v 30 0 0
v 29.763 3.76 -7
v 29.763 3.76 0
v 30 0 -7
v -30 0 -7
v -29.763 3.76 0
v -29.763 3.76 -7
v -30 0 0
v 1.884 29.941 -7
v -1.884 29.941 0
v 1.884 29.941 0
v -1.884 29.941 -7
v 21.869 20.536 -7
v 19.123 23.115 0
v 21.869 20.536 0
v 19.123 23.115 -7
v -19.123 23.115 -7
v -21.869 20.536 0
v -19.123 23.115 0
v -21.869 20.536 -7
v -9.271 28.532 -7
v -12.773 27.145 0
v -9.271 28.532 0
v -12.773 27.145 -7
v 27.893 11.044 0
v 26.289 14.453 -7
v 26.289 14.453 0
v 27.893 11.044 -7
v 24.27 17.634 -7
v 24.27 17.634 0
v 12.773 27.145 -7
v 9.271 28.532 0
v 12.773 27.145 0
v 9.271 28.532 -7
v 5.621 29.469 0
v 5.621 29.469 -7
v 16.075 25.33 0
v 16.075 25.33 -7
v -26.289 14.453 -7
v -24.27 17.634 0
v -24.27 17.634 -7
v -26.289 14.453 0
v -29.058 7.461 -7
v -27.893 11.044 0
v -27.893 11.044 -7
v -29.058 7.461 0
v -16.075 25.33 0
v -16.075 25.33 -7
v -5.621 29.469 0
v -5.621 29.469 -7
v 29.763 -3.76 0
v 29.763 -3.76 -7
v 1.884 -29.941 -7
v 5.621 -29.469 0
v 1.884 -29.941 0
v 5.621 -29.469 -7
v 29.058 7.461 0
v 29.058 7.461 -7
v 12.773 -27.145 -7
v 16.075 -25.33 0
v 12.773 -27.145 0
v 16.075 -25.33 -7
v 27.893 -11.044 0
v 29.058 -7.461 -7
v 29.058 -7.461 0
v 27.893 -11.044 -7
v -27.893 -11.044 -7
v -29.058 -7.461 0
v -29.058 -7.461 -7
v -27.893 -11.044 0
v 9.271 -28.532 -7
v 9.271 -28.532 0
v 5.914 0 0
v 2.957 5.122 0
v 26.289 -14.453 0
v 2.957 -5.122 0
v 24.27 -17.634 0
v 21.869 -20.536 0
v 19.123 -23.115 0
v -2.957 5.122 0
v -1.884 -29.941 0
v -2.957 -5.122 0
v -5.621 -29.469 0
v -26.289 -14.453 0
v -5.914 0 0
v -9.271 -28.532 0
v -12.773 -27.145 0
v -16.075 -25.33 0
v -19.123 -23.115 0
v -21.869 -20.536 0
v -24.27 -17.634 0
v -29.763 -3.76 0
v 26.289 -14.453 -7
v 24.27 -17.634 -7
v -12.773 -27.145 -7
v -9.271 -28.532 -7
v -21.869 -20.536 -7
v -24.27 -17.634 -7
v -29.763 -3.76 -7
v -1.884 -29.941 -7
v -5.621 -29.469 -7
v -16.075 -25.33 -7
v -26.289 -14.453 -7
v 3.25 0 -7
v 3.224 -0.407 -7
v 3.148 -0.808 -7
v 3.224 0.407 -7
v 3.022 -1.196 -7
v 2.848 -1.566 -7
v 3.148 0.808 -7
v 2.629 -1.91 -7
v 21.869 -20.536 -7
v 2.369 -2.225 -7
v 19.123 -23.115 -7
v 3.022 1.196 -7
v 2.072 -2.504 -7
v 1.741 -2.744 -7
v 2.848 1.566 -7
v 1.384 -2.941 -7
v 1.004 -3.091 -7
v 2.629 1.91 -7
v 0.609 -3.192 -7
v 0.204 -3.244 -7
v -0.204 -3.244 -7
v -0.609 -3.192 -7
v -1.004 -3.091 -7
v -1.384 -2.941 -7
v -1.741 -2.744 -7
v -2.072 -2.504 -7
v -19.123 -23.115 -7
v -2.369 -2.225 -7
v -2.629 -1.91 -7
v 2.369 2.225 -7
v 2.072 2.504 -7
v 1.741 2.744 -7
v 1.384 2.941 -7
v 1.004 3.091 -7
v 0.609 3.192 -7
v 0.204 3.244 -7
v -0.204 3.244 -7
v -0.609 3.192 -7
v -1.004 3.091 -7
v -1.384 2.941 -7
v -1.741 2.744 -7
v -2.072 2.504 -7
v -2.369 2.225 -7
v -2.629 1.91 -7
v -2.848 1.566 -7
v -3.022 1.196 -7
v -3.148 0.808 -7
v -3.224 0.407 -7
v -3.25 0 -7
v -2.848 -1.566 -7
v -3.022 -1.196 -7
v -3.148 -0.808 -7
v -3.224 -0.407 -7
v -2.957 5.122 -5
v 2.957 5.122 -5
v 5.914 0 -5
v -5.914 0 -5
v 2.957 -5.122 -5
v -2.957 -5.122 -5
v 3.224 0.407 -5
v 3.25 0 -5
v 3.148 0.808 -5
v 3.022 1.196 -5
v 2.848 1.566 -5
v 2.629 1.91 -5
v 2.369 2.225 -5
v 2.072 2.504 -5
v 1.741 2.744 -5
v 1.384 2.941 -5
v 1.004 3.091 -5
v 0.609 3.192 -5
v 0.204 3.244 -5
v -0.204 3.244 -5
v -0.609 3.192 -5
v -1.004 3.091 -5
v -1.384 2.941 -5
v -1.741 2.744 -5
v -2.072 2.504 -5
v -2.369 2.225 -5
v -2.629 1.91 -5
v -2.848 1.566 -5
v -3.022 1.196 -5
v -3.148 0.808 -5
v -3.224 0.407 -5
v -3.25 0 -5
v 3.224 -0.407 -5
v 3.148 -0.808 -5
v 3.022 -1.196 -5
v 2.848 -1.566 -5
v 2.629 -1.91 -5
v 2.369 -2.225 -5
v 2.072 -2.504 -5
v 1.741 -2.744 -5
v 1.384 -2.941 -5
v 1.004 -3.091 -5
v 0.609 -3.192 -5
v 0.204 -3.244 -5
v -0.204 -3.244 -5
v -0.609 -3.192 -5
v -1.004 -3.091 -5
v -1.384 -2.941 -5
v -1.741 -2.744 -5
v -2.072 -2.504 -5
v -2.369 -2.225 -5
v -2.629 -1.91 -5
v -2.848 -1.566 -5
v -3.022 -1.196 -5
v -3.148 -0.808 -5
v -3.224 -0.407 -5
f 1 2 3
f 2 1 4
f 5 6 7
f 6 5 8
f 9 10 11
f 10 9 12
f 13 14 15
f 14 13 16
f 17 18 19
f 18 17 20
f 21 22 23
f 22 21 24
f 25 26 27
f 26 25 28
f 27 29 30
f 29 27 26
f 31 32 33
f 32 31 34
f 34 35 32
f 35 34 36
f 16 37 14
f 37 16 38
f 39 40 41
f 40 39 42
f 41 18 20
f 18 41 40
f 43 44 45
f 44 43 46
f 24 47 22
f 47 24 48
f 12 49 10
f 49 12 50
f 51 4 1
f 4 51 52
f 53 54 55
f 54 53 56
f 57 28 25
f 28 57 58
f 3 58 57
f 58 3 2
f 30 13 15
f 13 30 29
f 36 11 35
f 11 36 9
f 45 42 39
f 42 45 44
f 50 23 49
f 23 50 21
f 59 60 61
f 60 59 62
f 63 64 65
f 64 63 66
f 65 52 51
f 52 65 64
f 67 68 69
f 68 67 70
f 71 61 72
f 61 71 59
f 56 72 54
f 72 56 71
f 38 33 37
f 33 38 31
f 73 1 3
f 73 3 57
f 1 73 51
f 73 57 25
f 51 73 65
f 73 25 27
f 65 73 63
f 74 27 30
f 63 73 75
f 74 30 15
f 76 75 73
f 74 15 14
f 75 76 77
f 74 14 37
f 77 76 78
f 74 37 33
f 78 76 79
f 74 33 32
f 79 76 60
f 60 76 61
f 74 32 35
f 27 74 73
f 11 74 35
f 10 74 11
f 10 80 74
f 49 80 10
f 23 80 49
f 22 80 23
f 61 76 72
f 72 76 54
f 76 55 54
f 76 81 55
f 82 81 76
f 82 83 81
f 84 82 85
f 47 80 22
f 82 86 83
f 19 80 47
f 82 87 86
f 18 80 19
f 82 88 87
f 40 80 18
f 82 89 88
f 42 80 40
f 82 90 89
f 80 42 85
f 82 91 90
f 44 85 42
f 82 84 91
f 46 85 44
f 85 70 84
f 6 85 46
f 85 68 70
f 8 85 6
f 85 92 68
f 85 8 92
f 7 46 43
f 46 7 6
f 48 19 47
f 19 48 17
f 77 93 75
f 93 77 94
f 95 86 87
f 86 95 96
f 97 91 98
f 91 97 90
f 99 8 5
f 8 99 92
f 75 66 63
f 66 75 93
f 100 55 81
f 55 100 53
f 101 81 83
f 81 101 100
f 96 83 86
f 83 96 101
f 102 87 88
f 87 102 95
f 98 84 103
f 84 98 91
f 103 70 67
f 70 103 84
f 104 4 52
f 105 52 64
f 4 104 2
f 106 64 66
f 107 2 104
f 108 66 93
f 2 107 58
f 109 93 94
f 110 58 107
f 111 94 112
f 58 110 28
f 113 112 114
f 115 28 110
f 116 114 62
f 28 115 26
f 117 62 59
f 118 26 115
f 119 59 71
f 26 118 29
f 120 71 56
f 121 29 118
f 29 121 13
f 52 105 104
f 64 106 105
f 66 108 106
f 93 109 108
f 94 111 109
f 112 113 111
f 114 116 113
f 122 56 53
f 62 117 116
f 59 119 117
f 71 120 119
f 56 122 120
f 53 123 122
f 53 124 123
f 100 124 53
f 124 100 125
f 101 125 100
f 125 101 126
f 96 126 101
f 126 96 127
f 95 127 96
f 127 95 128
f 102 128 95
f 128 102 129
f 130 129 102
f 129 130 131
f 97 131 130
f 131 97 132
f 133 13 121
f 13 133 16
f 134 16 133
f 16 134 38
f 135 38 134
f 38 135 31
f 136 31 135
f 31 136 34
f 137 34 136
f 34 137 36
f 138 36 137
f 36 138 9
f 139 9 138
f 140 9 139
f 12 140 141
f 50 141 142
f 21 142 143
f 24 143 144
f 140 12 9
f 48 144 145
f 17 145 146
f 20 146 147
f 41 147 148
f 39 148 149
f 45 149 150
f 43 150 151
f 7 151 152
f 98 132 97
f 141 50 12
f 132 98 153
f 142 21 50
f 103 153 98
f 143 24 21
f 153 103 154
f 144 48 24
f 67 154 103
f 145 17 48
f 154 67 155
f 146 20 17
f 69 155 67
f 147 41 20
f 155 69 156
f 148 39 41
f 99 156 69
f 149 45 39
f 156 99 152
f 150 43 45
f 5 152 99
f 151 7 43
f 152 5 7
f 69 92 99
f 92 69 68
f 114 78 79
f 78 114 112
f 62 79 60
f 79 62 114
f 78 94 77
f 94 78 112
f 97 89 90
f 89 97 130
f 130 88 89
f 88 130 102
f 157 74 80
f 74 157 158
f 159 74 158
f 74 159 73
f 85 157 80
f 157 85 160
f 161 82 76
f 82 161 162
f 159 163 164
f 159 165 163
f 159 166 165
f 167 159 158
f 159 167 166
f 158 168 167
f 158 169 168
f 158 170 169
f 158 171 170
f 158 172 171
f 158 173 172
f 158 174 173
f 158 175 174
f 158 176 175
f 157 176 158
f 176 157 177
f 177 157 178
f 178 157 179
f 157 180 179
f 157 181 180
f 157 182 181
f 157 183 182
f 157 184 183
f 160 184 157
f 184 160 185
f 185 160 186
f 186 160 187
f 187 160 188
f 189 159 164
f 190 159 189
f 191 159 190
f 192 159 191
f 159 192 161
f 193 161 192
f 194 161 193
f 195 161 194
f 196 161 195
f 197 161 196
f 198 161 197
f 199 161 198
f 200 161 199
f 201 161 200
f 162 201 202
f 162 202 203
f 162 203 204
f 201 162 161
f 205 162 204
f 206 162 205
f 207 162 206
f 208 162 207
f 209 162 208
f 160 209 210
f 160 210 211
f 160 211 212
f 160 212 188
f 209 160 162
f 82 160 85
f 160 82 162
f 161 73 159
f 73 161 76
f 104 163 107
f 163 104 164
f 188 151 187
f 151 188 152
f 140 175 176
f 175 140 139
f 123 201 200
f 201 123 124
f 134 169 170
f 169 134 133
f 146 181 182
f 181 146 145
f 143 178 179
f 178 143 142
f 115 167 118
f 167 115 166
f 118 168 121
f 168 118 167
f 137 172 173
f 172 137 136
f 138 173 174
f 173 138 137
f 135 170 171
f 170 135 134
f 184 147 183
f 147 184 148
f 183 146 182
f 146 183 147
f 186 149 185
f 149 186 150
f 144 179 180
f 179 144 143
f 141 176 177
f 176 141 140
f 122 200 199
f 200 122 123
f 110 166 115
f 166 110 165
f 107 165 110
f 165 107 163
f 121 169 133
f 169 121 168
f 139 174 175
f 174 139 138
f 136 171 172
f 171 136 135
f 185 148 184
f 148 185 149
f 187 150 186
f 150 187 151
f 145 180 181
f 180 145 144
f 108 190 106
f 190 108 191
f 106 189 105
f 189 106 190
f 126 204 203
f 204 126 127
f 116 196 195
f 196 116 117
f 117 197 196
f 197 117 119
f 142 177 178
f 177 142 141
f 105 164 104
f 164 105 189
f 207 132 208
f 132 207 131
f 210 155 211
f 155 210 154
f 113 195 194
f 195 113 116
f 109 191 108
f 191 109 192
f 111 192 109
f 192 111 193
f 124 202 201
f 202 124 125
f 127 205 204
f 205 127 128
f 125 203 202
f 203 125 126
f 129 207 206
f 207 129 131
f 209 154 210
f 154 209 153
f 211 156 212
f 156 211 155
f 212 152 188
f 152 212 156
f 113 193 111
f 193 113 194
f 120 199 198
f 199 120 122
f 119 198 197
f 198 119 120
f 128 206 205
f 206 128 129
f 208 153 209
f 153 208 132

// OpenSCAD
$fn = 50;


difference() {
	union() {
		translate(v = [0, 0, -7.0000000000]) {
			cylinder(h = 7.0000000000, r = 30.0000000000);
		}
		translate(v = [0, 0, -5.5000000000]) {
			cylinder(h = 5.5000000000, r = 2.8750000000);
		}
	}
	union() {
		translate(v = [0, 0, 0]) {
			rotate(a = [0, 0, 0]) {
				difference() {
					union() {
						translate(v = [0, 0, -5]) {
							#linear_extrude(height = 5) {
								polygon(points = [[5.9142500000, 0.0000000000], [2.9571250000, 5.1218907443], [-2.9571250000, 5.1218907443], [-5.9142500000, 0.0000000000], [-2.9571250000, -5.1218907443], [2.9571250000, -5.1218907443]]);
							}
						}
					}
					union();
				}
			}
		}
		#translate(v = [0, 0, -100.0000000000]) {
			cylinder(h = 200, r = 3.2500000000);
		}
	}
}
